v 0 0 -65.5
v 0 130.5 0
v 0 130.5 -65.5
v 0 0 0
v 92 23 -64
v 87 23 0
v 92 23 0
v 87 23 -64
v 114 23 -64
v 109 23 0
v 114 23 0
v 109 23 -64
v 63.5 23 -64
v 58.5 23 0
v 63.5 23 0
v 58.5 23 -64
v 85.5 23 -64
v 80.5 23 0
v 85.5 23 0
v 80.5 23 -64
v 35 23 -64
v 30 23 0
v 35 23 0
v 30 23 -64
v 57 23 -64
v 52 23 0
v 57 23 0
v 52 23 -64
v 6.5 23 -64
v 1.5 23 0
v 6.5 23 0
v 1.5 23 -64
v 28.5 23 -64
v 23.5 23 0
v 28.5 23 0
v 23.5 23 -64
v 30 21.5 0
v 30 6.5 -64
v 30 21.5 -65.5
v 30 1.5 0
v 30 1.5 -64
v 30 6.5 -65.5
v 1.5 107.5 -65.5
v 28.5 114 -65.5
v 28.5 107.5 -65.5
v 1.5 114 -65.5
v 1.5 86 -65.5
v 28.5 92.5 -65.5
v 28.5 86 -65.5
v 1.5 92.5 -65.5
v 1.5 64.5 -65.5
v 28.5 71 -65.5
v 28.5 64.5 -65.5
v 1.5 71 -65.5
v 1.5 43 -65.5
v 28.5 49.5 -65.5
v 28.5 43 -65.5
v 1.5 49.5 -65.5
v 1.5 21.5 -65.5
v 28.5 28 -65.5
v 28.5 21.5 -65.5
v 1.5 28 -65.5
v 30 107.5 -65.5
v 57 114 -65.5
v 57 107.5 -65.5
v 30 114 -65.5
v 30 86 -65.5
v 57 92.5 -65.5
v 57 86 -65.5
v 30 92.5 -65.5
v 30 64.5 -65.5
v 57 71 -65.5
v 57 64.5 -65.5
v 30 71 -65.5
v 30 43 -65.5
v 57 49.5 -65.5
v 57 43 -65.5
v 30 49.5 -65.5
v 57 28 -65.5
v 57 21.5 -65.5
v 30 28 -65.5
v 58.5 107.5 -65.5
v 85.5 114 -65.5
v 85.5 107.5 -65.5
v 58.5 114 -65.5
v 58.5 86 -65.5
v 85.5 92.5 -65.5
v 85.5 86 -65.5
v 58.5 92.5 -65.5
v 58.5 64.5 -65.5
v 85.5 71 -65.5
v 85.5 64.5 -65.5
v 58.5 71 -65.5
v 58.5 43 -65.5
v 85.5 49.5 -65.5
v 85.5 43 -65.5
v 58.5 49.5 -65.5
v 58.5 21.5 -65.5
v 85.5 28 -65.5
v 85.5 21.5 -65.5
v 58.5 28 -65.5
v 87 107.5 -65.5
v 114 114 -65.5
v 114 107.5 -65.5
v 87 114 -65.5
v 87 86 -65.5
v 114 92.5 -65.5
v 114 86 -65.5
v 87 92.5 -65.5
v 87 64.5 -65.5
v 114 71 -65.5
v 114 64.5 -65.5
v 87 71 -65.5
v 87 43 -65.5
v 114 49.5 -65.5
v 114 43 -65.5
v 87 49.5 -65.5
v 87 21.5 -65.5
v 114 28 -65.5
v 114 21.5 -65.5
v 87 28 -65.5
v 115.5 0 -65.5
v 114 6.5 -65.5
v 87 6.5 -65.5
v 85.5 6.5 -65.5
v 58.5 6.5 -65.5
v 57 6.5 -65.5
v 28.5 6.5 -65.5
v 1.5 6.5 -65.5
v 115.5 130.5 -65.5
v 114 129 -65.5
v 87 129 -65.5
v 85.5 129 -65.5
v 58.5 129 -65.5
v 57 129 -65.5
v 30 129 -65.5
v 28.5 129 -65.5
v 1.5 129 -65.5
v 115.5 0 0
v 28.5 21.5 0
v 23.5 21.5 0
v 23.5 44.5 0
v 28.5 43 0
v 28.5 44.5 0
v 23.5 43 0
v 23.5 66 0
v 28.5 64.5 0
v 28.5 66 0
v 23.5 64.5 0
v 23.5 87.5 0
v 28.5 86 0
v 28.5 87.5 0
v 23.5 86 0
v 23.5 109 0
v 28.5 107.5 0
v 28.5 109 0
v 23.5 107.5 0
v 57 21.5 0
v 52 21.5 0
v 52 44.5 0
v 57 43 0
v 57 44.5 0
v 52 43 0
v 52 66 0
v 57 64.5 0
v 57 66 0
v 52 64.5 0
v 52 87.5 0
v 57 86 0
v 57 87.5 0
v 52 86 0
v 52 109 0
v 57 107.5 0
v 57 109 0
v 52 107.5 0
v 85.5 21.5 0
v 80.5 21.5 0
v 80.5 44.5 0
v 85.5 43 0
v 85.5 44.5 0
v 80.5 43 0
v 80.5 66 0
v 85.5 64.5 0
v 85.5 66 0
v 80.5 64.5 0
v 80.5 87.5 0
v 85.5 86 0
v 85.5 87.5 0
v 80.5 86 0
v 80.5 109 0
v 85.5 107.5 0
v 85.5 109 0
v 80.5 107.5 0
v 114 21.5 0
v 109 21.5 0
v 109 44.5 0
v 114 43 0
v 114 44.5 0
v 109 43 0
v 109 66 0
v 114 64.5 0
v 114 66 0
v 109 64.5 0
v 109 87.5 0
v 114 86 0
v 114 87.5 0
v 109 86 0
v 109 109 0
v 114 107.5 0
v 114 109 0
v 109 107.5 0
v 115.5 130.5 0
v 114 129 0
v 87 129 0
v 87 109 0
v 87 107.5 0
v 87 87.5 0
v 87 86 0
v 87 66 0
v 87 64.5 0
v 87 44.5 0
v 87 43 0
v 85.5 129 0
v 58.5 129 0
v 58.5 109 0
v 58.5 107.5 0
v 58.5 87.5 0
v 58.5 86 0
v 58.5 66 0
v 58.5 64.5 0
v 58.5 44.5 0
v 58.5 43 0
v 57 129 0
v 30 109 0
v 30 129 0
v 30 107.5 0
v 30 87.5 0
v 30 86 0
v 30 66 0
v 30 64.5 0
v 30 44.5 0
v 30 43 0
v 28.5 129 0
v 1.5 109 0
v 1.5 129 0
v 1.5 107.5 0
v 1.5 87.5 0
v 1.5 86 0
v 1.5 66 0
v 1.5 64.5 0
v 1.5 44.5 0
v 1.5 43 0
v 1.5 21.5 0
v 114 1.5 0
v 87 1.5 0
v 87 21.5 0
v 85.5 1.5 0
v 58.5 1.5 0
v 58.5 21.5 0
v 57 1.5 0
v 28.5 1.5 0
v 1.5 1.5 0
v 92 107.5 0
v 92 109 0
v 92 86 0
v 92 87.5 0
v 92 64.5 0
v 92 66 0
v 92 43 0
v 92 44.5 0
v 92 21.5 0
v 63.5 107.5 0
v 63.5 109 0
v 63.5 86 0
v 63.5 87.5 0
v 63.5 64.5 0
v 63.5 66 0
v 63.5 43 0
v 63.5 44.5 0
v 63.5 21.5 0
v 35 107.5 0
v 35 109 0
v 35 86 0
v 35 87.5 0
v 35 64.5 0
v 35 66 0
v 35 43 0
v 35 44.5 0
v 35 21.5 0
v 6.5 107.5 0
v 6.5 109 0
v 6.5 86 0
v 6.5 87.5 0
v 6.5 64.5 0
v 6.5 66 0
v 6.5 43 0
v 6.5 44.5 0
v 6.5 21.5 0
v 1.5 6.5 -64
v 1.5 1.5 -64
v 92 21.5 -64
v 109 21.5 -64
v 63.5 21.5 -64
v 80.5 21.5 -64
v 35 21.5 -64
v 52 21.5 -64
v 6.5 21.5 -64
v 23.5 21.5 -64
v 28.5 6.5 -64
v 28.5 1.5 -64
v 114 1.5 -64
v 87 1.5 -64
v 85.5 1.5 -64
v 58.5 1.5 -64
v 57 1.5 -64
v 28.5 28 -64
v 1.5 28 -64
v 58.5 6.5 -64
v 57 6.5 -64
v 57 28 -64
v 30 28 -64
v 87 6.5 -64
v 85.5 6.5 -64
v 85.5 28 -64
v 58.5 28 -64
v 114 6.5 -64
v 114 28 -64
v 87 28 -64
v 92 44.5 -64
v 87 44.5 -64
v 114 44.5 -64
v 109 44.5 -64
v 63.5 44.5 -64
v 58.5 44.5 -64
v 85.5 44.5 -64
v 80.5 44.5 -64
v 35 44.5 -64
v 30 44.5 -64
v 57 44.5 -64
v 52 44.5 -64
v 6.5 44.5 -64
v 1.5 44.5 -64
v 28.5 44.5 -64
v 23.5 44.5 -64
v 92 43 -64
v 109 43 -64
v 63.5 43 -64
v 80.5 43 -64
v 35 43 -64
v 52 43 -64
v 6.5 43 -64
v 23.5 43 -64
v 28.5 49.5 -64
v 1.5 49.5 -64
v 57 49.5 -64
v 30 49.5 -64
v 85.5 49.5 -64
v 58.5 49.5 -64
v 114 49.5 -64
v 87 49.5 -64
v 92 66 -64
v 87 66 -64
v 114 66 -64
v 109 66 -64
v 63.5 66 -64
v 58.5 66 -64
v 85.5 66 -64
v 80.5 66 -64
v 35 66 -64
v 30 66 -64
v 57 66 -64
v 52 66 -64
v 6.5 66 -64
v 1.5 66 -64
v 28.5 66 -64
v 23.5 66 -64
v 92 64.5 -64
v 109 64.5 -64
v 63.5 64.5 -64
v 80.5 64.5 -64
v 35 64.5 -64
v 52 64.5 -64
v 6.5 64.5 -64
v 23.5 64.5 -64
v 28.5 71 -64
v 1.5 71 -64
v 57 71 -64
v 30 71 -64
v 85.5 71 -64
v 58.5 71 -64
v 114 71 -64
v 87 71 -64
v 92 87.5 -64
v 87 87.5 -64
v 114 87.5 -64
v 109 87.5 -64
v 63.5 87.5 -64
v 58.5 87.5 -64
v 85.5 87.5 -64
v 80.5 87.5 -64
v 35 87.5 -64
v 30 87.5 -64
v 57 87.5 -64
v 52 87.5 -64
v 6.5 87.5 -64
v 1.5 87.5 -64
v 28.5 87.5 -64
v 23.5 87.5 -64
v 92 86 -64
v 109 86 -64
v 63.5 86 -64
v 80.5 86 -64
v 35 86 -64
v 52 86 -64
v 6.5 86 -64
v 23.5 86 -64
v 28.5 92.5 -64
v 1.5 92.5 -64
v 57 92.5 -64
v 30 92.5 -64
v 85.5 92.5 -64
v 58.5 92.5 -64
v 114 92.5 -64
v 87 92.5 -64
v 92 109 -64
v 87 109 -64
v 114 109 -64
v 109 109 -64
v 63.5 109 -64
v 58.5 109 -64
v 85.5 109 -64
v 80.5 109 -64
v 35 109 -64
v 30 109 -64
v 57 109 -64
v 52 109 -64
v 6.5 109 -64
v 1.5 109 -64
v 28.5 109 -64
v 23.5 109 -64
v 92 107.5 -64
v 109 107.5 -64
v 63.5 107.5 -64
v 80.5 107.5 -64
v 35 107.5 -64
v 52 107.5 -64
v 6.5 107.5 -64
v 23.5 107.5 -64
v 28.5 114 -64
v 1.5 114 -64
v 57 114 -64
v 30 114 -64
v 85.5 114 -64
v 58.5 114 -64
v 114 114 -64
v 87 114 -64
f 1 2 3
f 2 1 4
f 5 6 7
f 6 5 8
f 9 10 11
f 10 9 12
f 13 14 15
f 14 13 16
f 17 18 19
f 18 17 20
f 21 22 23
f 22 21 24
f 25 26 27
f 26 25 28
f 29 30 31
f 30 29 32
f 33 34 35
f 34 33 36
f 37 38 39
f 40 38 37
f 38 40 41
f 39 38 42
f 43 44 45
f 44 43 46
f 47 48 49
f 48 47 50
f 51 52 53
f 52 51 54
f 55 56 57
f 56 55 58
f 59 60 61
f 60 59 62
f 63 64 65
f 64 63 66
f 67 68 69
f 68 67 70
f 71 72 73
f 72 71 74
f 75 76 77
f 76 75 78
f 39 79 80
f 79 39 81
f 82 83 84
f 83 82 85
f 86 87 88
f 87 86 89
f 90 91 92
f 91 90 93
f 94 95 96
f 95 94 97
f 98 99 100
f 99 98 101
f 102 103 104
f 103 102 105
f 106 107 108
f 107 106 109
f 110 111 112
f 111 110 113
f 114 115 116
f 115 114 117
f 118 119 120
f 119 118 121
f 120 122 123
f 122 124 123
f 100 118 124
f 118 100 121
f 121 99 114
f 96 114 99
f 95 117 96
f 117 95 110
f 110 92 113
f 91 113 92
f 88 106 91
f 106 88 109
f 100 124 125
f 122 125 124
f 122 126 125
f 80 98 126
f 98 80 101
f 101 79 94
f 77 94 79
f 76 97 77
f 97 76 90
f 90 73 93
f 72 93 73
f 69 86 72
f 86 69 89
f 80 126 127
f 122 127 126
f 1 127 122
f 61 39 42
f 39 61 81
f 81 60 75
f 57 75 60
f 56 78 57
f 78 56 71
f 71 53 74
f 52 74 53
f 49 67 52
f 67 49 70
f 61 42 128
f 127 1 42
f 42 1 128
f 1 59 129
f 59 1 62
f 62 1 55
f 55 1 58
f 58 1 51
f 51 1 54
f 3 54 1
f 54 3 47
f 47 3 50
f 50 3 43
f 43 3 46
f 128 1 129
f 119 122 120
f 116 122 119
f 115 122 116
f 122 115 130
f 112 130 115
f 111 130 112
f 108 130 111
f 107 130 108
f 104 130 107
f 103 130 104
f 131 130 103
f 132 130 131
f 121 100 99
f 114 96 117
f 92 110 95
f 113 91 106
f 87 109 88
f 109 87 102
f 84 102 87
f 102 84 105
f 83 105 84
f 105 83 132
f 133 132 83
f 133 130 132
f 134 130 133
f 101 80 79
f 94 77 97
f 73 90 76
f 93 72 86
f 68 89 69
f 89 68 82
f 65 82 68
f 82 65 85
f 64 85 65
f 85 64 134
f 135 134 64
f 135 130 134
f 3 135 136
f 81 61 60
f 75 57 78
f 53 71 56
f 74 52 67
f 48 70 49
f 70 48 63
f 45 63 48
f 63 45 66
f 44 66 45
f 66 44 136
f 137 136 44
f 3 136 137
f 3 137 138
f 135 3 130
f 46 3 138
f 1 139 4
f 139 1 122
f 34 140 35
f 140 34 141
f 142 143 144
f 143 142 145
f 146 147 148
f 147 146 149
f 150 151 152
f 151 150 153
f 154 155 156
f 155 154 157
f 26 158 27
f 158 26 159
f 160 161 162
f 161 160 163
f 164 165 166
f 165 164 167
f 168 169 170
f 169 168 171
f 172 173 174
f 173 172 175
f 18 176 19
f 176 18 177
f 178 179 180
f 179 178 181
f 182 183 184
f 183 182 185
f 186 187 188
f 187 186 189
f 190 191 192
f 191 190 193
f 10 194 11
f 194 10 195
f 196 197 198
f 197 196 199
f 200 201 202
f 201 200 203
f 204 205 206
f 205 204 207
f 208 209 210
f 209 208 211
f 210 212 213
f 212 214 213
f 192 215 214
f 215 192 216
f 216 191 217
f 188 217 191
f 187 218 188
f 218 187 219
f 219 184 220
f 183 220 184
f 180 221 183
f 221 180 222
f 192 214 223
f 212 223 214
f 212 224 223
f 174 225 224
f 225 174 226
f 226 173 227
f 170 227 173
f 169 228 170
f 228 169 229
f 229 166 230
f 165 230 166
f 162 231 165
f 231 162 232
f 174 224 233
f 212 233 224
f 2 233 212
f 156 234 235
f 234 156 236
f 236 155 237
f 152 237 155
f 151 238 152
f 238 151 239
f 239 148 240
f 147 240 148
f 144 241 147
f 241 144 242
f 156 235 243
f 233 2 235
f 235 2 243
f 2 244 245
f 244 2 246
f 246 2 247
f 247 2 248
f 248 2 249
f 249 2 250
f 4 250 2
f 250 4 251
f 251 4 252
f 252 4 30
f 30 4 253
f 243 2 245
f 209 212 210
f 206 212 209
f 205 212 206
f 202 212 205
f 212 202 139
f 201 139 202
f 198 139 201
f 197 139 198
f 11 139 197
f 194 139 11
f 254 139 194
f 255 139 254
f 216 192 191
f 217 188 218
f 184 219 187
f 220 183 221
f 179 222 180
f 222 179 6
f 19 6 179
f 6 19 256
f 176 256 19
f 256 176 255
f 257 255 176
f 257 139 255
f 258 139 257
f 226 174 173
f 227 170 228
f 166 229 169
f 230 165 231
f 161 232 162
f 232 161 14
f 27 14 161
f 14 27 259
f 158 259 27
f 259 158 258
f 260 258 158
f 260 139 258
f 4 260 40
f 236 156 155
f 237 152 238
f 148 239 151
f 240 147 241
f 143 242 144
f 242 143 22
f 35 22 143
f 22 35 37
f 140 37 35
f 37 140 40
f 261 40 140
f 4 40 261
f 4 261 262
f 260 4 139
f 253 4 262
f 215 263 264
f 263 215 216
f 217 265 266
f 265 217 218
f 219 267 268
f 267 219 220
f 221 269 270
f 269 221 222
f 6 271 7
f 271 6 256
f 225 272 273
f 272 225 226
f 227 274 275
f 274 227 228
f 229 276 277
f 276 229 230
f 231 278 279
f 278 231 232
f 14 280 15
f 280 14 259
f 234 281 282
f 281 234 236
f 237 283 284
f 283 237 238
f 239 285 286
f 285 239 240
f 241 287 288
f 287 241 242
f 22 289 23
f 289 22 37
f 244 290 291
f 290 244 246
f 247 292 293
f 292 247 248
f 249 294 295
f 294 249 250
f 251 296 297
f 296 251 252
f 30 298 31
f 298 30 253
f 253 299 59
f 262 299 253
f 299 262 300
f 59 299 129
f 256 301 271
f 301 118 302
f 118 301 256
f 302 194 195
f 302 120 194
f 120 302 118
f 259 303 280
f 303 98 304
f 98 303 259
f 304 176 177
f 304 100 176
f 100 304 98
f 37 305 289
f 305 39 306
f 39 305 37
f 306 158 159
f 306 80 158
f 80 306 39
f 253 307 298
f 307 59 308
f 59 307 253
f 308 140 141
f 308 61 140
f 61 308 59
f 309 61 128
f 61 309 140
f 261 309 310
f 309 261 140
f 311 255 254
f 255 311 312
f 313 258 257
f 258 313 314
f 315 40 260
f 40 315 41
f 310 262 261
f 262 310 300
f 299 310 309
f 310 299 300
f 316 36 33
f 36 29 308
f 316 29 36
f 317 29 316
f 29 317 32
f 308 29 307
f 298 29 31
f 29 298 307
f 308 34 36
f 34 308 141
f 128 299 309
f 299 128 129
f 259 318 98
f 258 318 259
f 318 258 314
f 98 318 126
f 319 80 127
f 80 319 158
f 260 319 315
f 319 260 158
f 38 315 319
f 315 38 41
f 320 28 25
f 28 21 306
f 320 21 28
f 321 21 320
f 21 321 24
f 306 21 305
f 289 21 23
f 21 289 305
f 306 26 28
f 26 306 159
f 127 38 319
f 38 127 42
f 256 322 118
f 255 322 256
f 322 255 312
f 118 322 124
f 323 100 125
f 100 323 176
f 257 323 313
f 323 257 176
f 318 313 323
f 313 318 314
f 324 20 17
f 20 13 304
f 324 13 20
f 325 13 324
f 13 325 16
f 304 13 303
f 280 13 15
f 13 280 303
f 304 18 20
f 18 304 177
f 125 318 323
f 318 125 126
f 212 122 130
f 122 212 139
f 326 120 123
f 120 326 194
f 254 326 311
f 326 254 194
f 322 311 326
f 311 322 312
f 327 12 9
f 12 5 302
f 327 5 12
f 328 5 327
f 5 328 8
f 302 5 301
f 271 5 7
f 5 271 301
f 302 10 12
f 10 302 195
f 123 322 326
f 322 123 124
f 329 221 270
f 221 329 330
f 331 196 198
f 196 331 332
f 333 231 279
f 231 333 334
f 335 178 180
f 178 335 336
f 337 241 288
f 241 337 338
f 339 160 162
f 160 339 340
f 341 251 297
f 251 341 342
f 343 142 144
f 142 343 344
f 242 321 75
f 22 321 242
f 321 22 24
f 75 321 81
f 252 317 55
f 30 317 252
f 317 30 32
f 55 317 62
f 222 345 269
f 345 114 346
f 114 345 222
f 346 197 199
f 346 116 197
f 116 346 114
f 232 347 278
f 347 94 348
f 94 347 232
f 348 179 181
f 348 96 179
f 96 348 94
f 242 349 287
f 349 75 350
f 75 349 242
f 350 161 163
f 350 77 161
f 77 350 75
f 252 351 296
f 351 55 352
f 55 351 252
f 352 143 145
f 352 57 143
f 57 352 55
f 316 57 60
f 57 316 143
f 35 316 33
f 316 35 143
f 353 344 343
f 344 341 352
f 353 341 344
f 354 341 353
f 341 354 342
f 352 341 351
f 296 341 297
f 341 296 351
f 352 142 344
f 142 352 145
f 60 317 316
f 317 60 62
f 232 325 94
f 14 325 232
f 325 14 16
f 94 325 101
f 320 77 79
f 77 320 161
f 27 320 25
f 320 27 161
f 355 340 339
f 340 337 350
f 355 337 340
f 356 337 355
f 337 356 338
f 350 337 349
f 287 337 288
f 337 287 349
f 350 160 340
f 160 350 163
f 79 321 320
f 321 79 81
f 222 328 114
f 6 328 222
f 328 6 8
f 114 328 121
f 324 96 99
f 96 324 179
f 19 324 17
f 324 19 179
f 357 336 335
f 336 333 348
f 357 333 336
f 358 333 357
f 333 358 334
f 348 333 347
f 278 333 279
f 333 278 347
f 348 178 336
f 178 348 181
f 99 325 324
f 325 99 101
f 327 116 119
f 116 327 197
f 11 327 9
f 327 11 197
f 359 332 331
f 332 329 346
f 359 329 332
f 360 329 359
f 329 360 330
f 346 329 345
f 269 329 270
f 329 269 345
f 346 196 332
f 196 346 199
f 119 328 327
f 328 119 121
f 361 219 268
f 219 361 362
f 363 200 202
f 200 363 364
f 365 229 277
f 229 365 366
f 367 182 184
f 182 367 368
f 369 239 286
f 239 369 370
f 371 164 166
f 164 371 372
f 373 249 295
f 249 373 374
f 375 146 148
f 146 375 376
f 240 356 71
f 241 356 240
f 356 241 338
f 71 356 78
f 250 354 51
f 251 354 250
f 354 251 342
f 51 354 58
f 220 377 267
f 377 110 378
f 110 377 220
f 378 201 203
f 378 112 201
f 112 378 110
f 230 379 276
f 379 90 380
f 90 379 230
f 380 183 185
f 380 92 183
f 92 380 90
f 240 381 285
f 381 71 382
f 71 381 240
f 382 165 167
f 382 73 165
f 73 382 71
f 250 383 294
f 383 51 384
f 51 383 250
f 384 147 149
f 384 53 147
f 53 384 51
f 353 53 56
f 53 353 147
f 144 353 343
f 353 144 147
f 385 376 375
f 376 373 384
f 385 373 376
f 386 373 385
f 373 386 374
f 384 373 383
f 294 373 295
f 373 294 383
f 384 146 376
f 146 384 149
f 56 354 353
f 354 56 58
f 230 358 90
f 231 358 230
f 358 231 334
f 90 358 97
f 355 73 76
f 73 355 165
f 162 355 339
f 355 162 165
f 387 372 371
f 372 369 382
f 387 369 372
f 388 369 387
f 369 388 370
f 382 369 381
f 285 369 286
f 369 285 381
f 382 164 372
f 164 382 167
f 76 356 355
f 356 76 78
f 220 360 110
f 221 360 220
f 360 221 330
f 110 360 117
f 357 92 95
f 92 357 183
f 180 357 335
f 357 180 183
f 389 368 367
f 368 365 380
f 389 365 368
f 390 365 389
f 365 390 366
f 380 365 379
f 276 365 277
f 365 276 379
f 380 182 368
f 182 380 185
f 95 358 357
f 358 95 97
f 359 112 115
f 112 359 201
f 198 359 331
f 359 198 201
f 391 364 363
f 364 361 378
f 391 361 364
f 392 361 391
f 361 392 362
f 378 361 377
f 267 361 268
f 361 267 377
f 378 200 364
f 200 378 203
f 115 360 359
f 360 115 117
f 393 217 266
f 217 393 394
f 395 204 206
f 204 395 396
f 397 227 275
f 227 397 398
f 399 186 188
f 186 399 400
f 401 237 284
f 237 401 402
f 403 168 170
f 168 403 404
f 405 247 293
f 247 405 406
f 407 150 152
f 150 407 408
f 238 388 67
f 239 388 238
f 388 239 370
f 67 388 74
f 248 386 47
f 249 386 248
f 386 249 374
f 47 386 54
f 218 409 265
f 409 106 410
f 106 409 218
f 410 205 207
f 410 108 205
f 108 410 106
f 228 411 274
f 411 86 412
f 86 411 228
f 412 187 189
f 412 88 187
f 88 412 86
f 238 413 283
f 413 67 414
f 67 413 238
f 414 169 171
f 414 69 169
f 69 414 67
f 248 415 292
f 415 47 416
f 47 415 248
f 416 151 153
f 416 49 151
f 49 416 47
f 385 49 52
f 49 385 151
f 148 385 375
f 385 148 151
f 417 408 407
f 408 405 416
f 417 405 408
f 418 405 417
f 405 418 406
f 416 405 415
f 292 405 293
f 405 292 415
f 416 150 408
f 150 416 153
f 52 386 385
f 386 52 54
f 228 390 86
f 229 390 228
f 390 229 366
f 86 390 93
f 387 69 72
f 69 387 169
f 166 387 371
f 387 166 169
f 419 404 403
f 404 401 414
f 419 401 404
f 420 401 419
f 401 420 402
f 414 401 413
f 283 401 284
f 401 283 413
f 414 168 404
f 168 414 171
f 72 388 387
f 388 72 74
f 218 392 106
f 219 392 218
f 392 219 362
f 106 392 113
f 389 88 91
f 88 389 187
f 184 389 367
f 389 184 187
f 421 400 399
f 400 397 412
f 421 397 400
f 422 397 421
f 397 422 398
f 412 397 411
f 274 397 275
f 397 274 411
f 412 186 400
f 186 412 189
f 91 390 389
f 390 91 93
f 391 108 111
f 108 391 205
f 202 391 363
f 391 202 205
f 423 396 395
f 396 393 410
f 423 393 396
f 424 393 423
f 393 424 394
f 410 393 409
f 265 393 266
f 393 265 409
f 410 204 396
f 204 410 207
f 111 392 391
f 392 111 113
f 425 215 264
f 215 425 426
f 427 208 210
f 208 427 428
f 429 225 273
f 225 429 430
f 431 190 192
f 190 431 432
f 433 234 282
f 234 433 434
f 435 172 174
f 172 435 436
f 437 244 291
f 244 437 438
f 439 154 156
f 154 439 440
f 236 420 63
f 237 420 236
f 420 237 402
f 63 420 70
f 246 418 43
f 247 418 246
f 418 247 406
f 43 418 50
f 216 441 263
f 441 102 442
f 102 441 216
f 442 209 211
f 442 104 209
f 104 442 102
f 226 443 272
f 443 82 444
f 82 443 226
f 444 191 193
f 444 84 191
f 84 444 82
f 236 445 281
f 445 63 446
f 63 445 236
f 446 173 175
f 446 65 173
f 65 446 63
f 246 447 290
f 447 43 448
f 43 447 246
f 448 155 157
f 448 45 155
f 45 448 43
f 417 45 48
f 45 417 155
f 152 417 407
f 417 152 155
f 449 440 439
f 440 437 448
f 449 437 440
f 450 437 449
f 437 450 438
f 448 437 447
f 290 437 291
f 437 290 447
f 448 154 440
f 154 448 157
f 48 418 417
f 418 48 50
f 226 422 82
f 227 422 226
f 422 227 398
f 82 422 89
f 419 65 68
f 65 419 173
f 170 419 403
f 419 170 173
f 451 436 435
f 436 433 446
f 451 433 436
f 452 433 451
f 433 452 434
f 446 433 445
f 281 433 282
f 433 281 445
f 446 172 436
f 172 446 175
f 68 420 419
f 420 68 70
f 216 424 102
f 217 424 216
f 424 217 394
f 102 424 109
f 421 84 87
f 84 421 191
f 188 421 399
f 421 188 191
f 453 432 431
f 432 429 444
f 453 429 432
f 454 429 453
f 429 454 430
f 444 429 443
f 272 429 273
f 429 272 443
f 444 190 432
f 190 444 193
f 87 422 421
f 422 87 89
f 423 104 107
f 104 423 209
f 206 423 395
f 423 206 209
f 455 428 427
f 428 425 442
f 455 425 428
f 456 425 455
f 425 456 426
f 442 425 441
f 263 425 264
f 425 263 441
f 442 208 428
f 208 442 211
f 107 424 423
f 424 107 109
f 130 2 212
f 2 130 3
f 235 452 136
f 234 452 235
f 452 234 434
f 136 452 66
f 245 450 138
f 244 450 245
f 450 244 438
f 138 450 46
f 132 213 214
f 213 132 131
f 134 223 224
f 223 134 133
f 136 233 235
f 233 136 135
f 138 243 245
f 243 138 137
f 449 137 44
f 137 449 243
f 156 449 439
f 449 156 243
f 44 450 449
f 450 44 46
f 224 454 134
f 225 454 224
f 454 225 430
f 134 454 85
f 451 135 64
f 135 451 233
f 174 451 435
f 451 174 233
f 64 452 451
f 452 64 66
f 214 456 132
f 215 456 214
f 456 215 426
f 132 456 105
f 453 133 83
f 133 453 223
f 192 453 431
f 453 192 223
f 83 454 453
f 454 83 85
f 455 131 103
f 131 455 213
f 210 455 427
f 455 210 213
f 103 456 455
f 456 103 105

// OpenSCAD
module section(w, h, l, t, d, d2) {
	difference() {
		cube([2*t+w, t+l, 2*t+h]);
		translate([t,0,t]) cube([w, l, h]);//.
		translate([t+d,0,0]) cube([w-2*d,l,h+2*t]);
		translate([t,0,d2+t]) cube([w,l+t,h-d2]);
	}
}

//n, m - параметры матрицы.
//w,h,l - параметры нишы.
//t - толщина стенок.
//d - выступ поддержки.
//d2 - высота заднего бампера.
module storage(m, n, w, h, l, t, d, d2) {
	//sect = section(w,h,l,t,d, d2)
	//transes = []
	//for i in range(0,n):
	//	for j in range(0,m):
	//		transes.append(trans.translate(j*(w+t), 0, i*(h+t)))
	//plate = solid.box(w*m + t*(n+1),l+t,t)
	//return util.multiple_transform(sect, transes) + plate + plate.up(h*n+t*n)
	union() {
		for (i = [0 : 1 : n-1])
			for (j = [0 : 1 : m-1])
				translate([j*(w+t),0,i*(h+t)]) section(w,h,l,t,d,d2); 
		cube([w*m+t*(m+1), l+t, t]);
		translate([0,0,h*n+t*n]) cube([w*m + t*(m+1),l+t,t]);
	}
}

rotate([-90,0,0]) storage(4,6,27,20,64,1.5,5,5);
